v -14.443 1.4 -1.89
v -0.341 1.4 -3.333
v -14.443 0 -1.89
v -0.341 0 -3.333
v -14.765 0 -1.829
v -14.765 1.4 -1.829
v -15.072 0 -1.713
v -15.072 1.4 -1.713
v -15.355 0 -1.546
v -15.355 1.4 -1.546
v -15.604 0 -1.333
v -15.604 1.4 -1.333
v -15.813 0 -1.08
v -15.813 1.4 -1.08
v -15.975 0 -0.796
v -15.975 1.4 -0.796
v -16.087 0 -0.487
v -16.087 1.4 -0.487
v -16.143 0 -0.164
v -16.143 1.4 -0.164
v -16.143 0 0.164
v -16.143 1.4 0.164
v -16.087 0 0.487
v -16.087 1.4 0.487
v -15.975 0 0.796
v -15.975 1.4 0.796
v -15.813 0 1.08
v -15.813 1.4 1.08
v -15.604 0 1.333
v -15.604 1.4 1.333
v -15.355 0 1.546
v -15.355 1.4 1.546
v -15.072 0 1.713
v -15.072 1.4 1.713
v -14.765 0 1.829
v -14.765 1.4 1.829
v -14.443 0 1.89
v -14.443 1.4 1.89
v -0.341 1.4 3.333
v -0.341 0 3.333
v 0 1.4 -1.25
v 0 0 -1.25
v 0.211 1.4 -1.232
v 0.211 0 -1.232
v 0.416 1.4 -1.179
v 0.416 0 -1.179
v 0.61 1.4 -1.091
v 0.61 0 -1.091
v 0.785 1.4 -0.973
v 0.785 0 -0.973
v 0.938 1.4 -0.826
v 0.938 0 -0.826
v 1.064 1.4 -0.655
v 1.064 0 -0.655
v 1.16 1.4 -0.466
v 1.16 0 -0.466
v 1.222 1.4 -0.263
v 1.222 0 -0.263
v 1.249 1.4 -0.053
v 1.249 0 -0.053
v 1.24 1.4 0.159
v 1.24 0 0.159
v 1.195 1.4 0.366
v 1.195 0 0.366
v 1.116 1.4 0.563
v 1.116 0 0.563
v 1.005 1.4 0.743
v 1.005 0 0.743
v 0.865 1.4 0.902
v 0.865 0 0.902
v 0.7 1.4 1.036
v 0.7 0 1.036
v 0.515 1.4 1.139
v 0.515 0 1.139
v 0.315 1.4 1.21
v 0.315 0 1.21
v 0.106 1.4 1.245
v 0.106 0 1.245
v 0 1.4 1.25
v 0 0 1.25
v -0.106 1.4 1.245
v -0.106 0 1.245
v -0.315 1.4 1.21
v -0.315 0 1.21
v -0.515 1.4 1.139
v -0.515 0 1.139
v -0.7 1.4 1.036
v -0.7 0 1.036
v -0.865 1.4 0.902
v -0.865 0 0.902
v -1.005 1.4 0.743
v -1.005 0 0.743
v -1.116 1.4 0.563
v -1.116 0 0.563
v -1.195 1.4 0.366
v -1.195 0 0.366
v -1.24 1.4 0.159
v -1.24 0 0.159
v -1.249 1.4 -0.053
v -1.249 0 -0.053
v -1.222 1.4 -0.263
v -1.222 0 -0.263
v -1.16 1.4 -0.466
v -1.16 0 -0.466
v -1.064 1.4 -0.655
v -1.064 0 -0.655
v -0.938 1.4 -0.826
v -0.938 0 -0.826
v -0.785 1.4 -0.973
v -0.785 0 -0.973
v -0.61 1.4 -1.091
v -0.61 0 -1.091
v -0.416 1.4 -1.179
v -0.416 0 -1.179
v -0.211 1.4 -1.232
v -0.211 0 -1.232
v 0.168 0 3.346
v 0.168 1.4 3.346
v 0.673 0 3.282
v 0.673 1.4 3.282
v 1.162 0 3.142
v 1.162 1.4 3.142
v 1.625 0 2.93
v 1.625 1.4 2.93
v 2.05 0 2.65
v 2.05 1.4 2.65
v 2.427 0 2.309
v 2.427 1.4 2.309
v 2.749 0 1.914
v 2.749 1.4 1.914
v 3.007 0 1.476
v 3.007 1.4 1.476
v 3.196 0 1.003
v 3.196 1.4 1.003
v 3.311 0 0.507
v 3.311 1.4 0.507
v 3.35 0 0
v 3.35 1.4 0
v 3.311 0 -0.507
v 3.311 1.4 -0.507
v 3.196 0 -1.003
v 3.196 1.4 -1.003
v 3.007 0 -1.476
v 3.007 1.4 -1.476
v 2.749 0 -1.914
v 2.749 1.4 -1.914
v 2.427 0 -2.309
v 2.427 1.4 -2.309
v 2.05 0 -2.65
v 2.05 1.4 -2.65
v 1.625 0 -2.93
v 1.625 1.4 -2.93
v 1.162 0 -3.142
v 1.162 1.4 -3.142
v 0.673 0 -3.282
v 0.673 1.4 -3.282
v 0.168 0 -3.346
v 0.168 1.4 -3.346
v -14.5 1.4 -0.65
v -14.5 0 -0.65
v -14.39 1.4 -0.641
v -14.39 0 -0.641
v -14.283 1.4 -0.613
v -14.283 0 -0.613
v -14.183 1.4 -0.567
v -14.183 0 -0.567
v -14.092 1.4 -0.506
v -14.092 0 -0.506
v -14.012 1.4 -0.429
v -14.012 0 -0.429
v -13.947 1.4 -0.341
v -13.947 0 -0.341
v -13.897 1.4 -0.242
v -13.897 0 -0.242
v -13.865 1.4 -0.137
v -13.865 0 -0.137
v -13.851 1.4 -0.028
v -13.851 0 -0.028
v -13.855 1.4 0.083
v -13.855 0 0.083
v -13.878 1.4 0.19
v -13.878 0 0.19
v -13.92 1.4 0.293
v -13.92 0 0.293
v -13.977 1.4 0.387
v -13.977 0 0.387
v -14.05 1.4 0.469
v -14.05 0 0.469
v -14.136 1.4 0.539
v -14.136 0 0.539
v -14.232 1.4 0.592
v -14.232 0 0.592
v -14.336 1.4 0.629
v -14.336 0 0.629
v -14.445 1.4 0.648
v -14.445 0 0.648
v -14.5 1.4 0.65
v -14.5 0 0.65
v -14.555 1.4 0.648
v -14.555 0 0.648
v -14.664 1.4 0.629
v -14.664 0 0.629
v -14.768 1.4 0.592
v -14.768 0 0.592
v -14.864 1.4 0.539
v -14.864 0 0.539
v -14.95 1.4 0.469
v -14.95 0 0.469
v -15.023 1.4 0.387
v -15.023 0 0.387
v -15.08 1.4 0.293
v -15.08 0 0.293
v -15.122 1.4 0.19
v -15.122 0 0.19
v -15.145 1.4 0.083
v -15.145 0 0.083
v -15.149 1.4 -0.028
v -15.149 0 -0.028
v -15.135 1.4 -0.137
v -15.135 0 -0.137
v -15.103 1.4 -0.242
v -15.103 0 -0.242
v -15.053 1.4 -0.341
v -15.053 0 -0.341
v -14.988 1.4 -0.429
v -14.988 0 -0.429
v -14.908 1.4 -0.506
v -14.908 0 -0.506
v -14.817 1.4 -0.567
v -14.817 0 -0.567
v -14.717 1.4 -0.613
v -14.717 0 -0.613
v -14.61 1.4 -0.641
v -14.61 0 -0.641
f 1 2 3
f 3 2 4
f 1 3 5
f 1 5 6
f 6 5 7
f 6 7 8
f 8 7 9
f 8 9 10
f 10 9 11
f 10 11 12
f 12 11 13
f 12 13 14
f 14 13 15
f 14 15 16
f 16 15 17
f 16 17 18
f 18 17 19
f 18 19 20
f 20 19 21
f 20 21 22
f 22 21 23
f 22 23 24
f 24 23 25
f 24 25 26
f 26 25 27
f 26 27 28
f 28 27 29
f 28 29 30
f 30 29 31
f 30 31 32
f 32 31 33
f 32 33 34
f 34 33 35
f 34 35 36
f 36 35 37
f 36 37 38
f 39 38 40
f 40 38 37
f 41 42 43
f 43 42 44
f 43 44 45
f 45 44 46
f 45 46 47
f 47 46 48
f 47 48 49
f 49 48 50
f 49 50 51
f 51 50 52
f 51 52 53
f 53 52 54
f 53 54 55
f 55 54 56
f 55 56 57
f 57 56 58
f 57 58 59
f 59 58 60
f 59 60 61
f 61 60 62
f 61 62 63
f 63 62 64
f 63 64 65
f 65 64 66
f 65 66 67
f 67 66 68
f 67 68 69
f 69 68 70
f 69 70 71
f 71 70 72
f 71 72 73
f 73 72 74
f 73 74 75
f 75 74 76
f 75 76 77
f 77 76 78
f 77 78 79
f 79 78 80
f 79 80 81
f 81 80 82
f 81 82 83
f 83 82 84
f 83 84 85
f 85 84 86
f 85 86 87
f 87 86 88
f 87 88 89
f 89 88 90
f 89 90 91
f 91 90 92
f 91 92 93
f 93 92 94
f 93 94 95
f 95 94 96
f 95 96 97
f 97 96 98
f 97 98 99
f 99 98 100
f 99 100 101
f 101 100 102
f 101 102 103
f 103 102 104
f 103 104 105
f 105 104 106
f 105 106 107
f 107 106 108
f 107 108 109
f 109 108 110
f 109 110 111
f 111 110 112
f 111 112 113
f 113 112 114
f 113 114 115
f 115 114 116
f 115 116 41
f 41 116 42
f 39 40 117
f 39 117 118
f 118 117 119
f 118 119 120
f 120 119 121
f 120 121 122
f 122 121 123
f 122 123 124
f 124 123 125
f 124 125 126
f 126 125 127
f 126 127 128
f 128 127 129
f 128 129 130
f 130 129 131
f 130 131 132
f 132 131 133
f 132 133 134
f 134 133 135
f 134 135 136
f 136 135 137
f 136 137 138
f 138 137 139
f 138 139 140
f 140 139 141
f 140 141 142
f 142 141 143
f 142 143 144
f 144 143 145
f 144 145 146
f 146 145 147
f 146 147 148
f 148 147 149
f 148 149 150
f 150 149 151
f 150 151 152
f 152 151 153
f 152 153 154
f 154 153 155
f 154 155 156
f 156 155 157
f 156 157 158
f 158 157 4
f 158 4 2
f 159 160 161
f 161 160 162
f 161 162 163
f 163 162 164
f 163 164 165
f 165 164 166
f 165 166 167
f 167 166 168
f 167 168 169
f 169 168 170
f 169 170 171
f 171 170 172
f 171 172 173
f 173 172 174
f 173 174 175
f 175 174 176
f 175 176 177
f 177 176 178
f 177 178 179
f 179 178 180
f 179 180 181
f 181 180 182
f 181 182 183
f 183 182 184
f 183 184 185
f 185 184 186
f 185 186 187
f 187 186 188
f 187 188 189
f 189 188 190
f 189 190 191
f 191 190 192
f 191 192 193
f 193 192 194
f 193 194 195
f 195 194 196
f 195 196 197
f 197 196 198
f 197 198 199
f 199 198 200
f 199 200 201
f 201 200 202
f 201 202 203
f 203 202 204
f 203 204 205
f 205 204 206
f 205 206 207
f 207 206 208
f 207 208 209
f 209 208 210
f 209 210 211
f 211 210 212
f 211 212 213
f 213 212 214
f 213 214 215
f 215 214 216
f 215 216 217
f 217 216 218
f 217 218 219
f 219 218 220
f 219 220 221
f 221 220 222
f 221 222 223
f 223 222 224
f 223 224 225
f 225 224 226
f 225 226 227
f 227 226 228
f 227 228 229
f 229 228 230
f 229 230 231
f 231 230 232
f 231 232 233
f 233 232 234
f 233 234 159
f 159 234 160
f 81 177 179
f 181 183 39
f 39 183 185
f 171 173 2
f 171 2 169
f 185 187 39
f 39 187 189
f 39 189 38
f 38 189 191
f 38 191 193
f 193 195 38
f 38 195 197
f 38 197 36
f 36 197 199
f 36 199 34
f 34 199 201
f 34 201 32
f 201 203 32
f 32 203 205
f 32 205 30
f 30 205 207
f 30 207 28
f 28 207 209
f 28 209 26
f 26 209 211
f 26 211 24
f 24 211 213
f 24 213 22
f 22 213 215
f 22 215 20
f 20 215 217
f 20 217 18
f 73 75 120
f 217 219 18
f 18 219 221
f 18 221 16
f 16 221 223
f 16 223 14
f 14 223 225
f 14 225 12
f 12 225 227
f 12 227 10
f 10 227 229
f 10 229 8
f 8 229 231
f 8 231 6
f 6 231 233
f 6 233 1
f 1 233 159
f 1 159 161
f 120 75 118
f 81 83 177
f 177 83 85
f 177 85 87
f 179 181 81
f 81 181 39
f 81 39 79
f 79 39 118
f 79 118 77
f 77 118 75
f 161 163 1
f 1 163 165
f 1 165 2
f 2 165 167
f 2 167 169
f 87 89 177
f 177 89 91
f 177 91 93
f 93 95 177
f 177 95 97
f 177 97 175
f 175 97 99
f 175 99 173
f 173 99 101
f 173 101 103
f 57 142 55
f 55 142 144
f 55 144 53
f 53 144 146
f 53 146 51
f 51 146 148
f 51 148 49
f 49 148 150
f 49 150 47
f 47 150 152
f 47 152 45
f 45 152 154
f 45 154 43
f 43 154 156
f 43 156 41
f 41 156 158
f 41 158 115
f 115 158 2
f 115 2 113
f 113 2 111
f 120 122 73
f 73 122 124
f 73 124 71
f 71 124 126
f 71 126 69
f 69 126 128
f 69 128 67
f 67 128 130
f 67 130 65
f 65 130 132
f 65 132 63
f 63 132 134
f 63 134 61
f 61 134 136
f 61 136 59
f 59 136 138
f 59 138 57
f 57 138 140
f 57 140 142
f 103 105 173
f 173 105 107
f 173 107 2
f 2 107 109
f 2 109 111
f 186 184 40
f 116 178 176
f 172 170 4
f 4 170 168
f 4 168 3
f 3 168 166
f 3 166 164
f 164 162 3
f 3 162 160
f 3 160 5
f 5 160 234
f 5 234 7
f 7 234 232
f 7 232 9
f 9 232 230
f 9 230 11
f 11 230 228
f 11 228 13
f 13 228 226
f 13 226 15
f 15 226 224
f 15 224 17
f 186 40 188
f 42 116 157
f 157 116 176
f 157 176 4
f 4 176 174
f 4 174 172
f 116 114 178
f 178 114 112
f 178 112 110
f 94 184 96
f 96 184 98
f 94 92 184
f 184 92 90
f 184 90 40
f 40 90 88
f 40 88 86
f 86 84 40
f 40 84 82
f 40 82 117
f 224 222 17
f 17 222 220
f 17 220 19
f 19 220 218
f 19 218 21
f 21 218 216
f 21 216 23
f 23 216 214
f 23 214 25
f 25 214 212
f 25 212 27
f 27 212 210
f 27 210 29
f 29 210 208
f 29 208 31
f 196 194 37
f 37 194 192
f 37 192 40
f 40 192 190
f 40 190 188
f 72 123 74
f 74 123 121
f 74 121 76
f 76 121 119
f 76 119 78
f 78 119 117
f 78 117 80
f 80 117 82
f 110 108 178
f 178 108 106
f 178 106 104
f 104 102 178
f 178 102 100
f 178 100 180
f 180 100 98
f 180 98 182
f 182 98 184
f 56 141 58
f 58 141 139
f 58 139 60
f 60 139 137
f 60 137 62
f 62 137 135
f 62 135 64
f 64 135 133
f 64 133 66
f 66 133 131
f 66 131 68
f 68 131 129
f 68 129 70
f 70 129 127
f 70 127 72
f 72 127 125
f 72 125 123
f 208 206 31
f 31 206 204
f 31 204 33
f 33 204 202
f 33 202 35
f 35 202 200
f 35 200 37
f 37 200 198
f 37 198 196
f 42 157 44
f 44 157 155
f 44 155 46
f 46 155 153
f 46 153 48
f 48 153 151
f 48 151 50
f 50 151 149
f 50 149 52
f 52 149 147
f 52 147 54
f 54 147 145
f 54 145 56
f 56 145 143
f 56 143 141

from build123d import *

# Parameters (mm, degrees)
SKETCH1_R           = 0.65
SKETCH1_R_2         = 3.35
SKETCH1_R_3         = 1.25
BOSS_EXTRUDE1_DEPTH = 1.4


with BuildPart() as part:
    # Sketch1 → Boss-Extrude1 (new body)
    # profile 1 of 4: a face of its own
    with BuildSketch(Plane(origin=(0, 0, 0), x_dir=(1, 0, 0), z_dir=(0, 1, 0))):
        with BuildLine():
            Line((-0.340877193, 3.332612), (-14.443333333, 1.890138149))
            ThreePointArc((-14.443333333, 1.890138149), (-12.976684119, 1.410200931), (-12.35, 0))
            ThreePointArc((-12.35, 0), (-12.976684119, -1.410200931), (-14.443333333, -1.890138149))
            Line((-14.443333333, -1.890138149), (-0.340877193, -3.332612))
            ThreePointArc((-0.340877193, -3.332612), (-3.35, 0), (-0.340877193, 3.332612))
        make_face()
    # profile 2 of 4: a face of its own
    with BuildSketch(Plane(origin=(0, 0, 0), x_dir=(1, 0, 0), z_dir=(0, 1, 0))):
        with BuildLine():
            ThreePointArc((-12.35, 0), (-12.976684119, 1.410200931), (-14.443333333, 1.890138149))
            ThreePointArc((-14.443333333, 1.890138149), (-16.15, 0), (-14.443333333, -1.890138149))
            ThreePointArc((-14.443333333, -1.890138149), (-12.976684119, -1.410200931), (-12.35, 0))
        make_face()
        with Locations(Location((-14.5, 0, 0), (0, 0, 270))):
            Circle(SKETCH1_R, mode=Mode.SUBTRACT)
    # profile 3 of 4: a face of its own
    with BuildSketch(Plane(origin=(0, 0, 0), x_dir=(1, 0, 0), z_dir=(0, 1, 0))):
        Circle(SKETCH1_R_2)
        with Locations(Location((0, 0, 0), (0, 0, 270))):
            Circle(SKETCH1_R_3, mode=Mode.SUBTRACT)
    # profile 4 of 4: a face of its own
    with BuildSketch(Plane(origin=(0, 0, 0), x_dir=(1, 0, 0), z_dir=(0, 1, 0))):
        with BuildLine():
            ThreePointArc((3.35, 0), (2.245056948, 2.486406905), (-0.340877193, 3.332612))
            ThreePointArc((-0.340877193, 3.332612), (-3.35, 0), (-0.340877193, -3.332612))
            ThreePointArc((-0.340877193, -3.332612), (2.245056948, -2.486406905), (3.35, 0))
        make_face()
        with Locations(Location((0, 0, 0), (0, 0, 270))):
            Circle(SKETCH1_R_3, mode=Mode.SUBTRACT)
    extrude(amount=BOSS_EXTRUDE1_DEPTH)


solid = part.part
